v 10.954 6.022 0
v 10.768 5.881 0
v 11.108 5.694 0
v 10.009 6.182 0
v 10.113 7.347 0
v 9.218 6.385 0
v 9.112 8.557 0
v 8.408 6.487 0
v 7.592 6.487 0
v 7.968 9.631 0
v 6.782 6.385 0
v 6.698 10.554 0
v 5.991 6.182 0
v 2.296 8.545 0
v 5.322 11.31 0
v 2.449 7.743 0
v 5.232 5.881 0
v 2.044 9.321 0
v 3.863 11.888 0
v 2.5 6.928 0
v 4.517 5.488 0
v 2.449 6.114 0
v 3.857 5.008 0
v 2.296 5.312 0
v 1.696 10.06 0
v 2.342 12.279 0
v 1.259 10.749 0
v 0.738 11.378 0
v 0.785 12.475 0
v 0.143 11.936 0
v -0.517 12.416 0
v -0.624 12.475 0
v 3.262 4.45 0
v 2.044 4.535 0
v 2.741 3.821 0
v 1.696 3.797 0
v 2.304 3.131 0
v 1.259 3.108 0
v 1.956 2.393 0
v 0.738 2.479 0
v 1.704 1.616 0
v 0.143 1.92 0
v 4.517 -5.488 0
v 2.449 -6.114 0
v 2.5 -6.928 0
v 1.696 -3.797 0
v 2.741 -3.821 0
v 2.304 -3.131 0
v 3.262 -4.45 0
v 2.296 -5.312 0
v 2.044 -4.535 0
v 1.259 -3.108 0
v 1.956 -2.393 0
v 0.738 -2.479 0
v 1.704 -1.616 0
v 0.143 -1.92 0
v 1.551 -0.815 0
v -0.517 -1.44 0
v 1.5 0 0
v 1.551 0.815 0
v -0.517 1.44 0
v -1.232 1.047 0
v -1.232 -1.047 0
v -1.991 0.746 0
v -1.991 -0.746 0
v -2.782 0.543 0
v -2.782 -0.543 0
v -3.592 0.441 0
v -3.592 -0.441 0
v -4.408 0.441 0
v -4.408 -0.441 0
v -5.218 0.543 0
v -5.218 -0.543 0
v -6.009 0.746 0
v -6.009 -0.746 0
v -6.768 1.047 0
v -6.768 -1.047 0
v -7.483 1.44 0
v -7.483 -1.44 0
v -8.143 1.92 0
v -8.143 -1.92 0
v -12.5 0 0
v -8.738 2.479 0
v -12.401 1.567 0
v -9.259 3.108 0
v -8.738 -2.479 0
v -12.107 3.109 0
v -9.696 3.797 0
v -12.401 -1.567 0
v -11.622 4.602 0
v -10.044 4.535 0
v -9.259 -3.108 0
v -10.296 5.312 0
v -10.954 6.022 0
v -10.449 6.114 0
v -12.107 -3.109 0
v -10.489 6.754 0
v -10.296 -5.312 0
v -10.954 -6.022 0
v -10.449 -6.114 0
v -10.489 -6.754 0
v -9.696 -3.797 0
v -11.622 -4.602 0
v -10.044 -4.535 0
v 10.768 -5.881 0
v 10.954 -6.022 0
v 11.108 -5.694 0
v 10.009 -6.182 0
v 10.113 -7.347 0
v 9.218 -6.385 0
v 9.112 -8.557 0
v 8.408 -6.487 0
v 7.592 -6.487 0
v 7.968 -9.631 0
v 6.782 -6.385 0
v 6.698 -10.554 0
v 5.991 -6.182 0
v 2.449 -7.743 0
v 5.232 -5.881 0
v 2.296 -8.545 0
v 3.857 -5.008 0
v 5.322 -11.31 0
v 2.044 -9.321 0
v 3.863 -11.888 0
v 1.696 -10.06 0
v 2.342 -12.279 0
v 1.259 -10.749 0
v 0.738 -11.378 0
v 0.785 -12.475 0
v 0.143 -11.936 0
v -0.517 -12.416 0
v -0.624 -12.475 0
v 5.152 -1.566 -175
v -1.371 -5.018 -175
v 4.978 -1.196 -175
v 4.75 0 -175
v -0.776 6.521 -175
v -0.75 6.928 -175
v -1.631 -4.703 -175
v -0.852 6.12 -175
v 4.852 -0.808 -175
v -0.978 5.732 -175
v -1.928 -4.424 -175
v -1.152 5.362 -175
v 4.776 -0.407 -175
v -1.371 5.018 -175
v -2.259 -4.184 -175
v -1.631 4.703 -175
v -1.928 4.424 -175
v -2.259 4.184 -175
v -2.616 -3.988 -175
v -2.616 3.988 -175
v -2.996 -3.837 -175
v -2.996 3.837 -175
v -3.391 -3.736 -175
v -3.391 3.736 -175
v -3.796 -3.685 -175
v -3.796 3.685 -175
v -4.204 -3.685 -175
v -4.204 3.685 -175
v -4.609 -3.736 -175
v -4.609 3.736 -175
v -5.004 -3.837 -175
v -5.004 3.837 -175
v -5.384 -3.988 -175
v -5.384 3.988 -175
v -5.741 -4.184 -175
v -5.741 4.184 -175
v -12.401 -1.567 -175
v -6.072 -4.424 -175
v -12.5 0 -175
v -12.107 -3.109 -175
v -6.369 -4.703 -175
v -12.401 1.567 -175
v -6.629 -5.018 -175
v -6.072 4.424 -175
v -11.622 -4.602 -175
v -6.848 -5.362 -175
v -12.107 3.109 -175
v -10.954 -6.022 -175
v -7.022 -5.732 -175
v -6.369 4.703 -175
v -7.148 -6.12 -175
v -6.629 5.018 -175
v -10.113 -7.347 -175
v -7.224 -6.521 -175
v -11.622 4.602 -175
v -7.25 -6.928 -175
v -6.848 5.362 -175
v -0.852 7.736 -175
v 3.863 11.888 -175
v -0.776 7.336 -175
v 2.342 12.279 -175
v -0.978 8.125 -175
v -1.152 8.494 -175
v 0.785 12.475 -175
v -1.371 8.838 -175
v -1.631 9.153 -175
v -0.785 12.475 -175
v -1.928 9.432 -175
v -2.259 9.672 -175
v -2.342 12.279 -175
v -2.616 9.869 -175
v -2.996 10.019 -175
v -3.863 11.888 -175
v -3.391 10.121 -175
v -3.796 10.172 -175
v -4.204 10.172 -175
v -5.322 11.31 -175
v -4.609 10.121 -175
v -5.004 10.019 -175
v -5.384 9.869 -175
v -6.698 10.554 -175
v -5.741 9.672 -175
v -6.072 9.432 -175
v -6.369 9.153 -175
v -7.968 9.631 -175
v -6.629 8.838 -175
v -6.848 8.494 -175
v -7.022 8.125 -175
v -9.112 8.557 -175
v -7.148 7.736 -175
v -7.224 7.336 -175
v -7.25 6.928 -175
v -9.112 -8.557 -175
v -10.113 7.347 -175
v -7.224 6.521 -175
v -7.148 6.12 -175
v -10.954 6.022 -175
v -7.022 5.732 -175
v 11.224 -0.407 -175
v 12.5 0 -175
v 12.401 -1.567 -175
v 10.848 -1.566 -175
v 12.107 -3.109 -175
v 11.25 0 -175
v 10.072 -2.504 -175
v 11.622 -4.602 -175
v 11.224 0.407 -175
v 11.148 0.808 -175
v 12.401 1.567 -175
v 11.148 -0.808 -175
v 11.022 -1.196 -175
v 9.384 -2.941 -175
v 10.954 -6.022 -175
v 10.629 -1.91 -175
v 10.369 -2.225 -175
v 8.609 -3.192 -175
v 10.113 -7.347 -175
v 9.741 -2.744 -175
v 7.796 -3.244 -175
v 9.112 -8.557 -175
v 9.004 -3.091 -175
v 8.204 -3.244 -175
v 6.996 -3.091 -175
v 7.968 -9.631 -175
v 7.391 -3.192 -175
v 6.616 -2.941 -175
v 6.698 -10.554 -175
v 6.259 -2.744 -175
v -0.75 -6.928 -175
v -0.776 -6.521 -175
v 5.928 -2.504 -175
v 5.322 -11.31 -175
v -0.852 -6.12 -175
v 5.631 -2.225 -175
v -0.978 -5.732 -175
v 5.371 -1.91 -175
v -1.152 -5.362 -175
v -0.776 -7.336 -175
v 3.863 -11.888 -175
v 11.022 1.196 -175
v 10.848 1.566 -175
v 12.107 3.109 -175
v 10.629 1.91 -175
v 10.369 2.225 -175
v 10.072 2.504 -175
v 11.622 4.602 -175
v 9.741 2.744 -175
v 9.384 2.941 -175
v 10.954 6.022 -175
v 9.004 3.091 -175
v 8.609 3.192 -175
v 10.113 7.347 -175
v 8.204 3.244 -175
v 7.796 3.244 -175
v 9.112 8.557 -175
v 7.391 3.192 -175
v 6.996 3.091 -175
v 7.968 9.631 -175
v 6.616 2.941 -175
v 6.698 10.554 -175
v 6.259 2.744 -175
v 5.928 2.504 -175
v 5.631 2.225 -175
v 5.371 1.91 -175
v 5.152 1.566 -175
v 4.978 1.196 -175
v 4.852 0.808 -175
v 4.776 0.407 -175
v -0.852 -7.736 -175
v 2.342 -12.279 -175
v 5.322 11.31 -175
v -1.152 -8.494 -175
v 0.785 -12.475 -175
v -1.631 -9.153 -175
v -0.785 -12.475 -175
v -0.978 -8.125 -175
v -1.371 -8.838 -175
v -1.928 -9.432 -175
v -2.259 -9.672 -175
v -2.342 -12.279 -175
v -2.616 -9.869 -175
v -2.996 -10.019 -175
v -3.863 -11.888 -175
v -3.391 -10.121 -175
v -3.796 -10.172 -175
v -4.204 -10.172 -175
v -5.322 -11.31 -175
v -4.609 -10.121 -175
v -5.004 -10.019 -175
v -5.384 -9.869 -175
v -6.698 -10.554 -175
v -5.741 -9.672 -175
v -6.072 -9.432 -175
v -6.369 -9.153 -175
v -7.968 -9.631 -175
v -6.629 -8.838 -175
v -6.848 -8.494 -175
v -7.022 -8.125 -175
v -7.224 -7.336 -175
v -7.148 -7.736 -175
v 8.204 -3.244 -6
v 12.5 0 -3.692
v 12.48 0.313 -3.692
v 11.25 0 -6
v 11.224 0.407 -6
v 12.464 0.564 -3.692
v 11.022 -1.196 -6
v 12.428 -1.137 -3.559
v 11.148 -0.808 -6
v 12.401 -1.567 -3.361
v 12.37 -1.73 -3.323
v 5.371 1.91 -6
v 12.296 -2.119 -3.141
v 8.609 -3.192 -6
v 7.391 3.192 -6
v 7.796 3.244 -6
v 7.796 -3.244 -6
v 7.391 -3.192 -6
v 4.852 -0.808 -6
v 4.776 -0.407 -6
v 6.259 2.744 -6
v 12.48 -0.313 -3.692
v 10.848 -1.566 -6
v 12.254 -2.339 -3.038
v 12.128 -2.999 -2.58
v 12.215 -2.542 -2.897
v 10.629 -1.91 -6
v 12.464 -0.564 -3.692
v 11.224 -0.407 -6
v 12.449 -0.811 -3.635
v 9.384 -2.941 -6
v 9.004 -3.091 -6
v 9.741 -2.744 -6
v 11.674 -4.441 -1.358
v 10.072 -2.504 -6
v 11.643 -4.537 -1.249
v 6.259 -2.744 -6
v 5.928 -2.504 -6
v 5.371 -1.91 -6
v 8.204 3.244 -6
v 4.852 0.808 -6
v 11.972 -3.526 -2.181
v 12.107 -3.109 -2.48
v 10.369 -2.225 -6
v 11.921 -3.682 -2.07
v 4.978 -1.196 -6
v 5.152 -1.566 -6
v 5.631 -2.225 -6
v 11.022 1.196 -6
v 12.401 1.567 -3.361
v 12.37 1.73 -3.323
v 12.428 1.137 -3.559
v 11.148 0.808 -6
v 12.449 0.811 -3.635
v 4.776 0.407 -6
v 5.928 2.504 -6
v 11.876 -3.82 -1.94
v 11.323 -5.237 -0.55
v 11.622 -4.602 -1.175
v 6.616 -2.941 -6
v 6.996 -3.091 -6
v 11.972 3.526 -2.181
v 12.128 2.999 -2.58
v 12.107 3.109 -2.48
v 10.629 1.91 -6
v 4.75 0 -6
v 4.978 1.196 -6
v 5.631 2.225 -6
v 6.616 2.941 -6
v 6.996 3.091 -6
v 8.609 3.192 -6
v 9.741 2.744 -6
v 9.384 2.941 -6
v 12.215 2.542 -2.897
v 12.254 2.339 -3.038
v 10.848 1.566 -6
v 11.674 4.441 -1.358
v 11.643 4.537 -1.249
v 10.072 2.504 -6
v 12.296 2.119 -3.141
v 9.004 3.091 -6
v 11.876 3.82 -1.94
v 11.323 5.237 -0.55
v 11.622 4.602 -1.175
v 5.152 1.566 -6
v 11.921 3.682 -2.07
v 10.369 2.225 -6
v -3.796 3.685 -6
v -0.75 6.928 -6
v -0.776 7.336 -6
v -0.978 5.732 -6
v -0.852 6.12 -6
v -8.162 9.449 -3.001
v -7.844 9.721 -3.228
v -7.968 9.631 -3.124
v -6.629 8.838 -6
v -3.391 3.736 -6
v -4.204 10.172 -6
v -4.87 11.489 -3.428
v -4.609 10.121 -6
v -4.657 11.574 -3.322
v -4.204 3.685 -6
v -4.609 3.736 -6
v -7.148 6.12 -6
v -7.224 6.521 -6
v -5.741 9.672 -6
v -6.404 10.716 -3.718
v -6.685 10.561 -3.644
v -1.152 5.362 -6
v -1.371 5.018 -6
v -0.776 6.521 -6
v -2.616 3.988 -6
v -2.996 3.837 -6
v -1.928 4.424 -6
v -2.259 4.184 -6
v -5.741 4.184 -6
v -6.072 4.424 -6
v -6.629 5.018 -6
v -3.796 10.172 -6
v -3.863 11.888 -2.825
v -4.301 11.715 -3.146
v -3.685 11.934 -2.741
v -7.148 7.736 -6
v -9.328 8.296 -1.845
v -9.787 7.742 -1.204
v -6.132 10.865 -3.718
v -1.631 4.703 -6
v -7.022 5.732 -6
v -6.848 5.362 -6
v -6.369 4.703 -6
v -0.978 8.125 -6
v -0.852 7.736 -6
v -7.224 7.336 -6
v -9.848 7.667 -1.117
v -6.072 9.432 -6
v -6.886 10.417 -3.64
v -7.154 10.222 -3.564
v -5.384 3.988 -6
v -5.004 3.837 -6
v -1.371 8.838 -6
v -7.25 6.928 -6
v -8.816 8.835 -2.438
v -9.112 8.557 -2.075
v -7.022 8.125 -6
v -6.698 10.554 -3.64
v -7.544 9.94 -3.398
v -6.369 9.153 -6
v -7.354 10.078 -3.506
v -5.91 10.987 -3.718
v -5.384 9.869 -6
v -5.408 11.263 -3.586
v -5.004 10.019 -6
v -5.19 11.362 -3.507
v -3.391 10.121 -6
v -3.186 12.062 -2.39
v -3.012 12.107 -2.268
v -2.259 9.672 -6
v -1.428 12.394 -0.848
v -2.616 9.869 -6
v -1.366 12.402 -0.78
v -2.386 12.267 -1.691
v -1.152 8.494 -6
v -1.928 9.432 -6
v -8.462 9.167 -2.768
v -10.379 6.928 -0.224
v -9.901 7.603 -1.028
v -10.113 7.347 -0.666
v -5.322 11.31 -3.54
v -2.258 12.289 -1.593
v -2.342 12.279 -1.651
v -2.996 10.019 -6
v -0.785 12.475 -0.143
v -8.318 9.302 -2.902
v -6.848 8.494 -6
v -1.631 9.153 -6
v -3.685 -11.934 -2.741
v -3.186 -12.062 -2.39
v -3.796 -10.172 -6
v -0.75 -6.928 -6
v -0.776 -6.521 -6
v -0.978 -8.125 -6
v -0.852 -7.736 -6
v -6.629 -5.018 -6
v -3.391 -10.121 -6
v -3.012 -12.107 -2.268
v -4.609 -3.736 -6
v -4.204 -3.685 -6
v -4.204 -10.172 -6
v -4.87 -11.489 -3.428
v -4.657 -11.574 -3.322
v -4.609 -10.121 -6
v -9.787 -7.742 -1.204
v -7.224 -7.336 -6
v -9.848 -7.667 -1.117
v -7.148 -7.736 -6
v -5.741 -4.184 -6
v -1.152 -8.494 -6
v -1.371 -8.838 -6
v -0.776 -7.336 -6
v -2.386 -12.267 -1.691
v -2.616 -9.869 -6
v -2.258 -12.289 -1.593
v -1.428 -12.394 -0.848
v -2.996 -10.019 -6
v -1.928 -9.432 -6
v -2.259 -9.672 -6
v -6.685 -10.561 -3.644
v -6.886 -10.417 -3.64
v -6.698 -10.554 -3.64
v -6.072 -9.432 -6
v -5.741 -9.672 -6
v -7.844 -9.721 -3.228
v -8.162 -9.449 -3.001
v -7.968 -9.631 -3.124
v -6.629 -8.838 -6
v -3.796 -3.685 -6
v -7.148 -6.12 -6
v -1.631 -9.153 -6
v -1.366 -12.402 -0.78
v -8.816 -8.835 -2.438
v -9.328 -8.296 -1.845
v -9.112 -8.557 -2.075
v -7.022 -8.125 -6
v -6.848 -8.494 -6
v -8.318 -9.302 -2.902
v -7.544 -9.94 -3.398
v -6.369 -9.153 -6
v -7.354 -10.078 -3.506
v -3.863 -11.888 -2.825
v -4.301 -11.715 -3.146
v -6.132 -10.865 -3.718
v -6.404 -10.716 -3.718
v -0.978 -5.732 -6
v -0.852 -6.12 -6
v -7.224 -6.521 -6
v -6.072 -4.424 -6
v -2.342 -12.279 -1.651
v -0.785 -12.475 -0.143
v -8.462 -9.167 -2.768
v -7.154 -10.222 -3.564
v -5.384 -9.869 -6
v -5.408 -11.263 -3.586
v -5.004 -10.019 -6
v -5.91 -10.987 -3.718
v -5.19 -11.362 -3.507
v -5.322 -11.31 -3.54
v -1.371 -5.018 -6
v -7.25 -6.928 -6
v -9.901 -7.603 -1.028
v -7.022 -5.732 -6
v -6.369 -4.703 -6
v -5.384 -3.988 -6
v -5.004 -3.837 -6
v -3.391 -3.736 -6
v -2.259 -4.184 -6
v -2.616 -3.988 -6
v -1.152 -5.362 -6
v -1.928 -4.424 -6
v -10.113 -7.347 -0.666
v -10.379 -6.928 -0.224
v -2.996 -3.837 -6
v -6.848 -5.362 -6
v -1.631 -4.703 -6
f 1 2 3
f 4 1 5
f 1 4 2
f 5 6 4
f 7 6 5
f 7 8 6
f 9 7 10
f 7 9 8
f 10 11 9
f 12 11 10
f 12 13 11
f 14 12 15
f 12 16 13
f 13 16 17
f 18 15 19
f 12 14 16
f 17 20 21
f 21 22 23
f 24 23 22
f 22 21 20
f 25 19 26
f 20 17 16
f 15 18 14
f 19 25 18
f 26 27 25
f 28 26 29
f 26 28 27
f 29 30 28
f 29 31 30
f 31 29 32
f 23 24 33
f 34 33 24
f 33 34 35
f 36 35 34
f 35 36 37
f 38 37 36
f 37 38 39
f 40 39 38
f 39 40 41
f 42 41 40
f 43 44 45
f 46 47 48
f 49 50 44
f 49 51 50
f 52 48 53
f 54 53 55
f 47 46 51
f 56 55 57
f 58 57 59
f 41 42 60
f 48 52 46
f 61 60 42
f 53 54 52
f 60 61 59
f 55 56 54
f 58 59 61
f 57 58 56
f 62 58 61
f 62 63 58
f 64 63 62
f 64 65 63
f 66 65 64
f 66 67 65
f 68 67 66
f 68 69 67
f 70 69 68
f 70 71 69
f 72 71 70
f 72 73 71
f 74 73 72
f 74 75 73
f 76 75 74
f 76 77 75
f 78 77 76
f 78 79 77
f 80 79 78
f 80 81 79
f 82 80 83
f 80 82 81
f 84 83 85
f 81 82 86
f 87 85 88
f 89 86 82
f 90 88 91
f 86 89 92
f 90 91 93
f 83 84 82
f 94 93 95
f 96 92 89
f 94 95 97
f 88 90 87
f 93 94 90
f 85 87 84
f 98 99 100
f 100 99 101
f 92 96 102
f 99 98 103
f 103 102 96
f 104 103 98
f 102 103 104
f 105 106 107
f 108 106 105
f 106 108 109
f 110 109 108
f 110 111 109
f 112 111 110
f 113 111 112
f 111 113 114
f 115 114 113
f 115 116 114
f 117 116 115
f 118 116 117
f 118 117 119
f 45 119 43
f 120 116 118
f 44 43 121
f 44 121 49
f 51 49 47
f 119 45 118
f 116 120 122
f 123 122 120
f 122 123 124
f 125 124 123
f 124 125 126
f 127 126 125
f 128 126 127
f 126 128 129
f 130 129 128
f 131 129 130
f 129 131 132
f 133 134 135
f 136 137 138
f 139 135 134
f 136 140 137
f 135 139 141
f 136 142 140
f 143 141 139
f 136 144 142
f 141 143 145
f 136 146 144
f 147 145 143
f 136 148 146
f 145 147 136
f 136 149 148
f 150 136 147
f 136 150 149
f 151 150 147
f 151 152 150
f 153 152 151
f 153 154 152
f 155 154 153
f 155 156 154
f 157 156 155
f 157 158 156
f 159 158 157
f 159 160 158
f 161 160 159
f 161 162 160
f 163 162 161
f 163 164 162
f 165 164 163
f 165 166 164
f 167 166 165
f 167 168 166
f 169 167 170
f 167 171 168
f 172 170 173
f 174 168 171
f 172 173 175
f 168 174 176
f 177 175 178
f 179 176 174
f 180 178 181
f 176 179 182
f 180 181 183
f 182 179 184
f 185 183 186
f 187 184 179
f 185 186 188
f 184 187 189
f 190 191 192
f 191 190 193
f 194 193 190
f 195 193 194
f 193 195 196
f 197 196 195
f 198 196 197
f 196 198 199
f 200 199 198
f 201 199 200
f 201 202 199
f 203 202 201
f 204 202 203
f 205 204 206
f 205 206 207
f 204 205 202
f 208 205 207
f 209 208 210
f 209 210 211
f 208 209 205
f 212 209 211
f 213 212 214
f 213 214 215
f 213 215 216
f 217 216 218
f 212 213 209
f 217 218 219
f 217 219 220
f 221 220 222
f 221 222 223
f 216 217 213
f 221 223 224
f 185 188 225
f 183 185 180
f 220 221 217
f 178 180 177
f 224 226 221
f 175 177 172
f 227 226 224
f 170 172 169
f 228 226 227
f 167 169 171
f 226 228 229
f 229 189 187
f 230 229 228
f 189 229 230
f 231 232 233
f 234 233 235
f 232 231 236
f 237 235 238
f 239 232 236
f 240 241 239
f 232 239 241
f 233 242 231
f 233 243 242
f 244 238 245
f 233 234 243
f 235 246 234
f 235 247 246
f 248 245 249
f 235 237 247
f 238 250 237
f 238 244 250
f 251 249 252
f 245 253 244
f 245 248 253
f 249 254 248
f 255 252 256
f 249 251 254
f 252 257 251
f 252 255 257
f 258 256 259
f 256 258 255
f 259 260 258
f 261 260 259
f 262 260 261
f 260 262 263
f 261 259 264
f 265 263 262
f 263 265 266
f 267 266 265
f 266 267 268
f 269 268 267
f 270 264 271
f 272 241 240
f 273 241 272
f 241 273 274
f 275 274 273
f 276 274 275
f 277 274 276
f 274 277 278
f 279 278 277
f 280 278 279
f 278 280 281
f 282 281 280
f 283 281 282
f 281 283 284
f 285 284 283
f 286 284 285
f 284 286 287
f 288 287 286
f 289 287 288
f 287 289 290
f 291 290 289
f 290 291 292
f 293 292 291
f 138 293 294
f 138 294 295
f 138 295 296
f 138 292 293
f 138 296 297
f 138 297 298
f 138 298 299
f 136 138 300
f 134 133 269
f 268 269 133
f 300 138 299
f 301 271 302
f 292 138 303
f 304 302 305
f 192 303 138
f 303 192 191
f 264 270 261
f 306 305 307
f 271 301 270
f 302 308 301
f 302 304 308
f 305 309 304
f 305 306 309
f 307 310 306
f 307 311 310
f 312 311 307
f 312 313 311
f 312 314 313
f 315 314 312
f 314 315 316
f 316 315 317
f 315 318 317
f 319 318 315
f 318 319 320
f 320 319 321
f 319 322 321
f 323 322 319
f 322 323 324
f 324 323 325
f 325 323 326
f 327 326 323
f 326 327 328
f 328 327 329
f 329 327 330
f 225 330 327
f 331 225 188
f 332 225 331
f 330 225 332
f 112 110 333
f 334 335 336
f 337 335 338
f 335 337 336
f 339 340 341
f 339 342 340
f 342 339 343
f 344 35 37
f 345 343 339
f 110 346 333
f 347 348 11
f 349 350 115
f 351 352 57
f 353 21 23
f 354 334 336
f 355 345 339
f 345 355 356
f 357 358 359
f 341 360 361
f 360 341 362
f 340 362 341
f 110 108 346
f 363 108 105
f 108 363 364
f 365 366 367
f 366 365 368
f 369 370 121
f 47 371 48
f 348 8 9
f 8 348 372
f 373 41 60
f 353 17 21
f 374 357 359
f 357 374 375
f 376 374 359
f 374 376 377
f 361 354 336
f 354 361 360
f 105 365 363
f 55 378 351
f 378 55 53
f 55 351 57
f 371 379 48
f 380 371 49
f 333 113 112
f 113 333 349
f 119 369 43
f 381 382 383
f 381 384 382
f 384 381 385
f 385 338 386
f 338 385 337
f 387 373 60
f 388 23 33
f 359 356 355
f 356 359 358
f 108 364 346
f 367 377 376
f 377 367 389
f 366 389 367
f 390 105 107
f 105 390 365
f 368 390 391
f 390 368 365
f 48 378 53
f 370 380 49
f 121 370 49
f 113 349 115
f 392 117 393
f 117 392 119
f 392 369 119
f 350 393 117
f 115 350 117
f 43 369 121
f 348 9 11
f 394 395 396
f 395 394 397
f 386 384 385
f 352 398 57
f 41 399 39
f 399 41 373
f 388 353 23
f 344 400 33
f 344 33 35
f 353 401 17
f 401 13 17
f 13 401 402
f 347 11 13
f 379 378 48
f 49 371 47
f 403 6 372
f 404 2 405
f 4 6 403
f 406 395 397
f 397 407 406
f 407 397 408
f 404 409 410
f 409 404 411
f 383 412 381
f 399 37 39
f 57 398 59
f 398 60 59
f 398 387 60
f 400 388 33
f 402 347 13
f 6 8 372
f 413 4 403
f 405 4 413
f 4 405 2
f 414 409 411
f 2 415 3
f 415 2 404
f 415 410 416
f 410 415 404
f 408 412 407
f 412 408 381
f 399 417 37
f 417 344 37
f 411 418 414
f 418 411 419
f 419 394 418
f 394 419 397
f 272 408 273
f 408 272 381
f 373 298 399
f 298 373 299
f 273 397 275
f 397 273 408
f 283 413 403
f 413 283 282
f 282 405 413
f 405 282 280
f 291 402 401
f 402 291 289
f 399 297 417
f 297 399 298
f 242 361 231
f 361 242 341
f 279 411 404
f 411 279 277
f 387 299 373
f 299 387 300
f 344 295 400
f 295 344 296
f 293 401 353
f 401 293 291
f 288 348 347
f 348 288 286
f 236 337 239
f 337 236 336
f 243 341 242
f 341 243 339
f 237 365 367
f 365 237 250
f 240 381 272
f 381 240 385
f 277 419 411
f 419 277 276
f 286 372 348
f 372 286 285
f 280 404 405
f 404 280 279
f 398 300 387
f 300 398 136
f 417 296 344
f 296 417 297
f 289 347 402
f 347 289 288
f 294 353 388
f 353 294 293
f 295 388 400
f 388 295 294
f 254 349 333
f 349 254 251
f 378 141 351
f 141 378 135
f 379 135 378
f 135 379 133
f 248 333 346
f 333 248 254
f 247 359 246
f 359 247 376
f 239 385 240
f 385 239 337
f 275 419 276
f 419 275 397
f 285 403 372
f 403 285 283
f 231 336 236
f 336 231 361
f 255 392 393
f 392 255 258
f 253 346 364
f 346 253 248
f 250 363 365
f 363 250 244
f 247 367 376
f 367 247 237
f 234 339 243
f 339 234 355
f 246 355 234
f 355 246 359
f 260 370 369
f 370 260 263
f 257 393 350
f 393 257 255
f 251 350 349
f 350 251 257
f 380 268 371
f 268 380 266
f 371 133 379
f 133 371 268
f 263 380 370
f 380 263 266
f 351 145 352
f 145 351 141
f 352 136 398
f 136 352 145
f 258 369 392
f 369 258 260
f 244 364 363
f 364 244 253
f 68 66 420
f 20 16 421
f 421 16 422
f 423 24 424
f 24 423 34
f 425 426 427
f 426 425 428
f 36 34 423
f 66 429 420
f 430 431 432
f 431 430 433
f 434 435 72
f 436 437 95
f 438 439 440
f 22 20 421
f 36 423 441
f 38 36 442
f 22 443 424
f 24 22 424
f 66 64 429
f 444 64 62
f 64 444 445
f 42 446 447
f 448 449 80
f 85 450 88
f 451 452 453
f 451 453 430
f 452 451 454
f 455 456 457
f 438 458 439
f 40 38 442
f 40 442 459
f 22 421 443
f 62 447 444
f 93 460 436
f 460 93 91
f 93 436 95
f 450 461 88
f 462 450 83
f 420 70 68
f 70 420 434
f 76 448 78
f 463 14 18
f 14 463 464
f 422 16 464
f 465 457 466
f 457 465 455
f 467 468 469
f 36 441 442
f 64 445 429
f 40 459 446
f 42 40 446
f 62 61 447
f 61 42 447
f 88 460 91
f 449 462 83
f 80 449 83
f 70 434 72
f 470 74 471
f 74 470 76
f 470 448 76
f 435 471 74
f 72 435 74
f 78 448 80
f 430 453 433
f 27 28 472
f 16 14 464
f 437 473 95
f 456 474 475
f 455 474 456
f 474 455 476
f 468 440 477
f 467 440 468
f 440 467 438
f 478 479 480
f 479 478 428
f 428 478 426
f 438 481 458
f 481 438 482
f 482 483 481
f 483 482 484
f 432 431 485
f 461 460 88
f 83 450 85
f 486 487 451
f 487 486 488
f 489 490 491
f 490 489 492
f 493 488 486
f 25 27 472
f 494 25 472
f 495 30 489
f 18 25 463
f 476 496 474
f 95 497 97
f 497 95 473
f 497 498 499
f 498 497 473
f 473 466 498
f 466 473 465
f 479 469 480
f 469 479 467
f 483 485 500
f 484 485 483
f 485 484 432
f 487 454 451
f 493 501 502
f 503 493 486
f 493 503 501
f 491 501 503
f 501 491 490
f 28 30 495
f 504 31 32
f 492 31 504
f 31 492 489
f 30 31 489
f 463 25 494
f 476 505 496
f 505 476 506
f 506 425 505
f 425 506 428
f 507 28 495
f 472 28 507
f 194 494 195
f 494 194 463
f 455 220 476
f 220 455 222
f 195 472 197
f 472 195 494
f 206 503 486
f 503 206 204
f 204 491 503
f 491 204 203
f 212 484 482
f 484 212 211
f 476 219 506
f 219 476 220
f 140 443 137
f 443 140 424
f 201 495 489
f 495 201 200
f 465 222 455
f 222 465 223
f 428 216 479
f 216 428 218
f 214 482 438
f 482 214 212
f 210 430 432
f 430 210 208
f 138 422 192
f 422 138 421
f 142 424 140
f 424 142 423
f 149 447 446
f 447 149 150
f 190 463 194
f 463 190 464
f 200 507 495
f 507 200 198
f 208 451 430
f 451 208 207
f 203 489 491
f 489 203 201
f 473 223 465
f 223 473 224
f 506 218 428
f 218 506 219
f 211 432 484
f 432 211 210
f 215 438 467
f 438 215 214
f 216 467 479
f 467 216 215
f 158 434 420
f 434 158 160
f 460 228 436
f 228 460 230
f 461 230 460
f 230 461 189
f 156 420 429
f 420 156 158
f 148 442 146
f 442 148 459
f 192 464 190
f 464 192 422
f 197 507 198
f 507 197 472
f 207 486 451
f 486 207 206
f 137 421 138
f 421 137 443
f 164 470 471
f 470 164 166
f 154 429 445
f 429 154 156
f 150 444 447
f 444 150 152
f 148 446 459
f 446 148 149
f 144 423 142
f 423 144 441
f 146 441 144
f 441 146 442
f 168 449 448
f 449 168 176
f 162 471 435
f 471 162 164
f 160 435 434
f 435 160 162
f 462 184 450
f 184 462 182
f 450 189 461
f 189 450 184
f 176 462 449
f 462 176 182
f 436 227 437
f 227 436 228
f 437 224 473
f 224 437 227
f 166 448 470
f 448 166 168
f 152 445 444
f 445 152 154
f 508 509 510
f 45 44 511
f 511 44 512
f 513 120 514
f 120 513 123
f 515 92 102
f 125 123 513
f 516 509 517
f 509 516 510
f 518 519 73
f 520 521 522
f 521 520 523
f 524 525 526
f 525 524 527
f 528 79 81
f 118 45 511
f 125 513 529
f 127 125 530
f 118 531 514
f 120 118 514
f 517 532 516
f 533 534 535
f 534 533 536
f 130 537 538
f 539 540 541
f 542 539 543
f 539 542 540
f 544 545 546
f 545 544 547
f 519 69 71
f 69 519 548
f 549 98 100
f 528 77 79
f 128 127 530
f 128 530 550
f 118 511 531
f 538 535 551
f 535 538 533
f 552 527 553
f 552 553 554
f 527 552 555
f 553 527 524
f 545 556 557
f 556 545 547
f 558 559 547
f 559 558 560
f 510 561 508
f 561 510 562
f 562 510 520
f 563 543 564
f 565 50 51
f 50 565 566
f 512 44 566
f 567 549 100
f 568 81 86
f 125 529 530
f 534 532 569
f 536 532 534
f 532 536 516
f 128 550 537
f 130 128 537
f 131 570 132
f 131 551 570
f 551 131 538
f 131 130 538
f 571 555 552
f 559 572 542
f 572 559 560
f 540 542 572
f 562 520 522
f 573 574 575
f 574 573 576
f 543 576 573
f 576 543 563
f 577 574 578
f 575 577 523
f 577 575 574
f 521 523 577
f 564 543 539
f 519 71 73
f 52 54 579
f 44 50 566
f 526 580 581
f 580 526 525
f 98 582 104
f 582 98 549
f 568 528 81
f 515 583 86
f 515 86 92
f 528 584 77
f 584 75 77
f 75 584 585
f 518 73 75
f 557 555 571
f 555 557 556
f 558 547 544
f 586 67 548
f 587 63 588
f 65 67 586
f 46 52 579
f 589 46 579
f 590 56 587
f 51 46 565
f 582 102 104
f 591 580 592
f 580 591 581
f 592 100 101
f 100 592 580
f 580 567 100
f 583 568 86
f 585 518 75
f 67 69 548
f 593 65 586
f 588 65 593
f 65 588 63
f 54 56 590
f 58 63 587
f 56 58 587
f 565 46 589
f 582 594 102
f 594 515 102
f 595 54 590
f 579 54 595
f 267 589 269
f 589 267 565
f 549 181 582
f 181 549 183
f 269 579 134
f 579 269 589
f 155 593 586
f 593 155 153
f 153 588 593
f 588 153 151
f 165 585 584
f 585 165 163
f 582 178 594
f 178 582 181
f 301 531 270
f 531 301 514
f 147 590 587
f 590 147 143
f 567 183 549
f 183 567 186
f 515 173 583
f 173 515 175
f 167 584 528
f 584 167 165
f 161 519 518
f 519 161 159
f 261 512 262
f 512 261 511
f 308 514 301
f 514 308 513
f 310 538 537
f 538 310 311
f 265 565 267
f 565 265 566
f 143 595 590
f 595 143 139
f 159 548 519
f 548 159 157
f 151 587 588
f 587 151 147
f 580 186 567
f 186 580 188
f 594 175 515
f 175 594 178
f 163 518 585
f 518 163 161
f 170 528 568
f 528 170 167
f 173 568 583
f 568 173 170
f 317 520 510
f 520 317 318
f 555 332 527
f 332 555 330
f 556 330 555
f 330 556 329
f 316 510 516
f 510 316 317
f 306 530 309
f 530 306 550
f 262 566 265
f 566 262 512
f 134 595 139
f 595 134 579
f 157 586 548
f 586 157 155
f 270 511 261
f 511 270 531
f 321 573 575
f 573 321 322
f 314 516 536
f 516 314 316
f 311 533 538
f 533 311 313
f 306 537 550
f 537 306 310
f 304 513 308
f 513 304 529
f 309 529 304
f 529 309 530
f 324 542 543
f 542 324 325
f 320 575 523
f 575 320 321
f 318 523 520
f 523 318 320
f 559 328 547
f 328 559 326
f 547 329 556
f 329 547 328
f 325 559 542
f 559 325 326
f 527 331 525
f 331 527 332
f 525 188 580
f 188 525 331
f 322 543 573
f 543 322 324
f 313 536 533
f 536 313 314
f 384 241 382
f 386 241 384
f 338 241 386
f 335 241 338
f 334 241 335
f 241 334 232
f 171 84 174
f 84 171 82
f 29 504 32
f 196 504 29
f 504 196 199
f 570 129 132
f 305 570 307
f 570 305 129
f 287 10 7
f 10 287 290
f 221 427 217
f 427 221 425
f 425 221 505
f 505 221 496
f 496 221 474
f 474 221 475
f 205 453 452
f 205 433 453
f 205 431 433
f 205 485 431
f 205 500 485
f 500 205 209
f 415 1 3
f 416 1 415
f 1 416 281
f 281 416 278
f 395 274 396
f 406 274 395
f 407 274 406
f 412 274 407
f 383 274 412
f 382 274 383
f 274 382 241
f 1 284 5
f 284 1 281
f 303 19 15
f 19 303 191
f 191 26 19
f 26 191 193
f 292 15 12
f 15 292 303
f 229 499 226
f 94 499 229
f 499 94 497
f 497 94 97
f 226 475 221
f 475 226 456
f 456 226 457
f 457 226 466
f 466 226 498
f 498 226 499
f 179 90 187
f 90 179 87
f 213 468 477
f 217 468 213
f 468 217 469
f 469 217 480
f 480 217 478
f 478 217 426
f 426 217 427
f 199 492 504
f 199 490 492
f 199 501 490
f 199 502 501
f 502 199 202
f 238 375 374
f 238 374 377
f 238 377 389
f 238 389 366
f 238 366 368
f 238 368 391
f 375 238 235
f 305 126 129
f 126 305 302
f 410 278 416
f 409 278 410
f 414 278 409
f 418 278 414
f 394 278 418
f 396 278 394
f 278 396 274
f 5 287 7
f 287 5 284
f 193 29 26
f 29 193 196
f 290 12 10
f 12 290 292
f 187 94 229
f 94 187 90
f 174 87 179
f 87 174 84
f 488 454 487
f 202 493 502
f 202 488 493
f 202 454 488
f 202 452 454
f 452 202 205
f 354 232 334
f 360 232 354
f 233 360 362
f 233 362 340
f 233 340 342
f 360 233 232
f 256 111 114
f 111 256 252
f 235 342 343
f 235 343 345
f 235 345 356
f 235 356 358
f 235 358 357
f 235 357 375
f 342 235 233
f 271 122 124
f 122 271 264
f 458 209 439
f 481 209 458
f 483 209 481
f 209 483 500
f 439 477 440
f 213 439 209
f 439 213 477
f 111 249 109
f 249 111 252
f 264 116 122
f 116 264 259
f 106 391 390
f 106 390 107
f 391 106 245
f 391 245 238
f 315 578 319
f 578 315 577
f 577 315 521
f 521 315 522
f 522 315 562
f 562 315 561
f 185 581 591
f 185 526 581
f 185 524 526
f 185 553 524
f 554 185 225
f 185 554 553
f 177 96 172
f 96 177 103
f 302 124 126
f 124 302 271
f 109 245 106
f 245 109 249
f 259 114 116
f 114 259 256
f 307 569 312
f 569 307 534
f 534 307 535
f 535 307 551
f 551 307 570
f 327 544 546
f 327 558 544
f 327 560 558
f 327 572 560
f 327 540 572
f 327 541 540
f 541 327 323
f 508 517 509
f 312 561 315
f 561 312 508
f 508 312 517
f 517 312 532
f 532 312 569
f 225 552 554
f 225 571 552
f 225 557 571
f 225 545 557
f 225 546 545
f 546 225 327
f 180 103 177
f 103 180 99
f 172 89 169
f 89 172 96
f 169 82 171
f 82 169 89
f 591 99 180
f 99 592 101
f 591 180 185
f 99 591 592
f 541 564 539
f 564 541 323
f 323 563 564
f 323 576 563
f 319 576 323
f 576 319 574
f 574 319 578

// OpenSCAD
$fn = 50;


difference() {
	union() {
		translate(v = [0, 0, -175.0000000000]) {
			cylinder(h = 175, r = 12.5000000000);
		}
	}
	union() {
		translate(v = [8.0000000000, 0.0000000000, 0]) {
			rotate(a = [0, 0, 0]) {
				difference() {
					union() {
						#translate(v = [0, 0, -175.0000000000]) {
							cylinder(h = 175, r = 2.2500000000);
						}
						#translate(v = [0, 0, -6]) {
							cylinder(h = 6, r = 12.5000000000, r1 = 3.2500000000, r2 = 6.5000000000);
						}
						#translate(v = [0, 0, -175.0000000000]) {
							cylinder(h = 175, r = 3.2500000000);
						}
						#translate(v = [0, 0, -175.0000000000]) {
							cylinder(h = 175, r = 2.2500000000);
						}
					}
					union();
				}
			}
		}
		translate(v = [-4.0000000000, 6.9282032303, 0]) {
			rotate(a = [0, 0, 0]) {
				difference() {
					union() {
						#translate(v = [0, 0, -175.0000000000]) {
							cylinder(h = 175, r = 2.2500000000);
						}
						#translate(v = [0, 0, -6]) {
							cylinder(h = 6, r = 12.5000000000, r1 = 3.2500000000, r2 = 6.5000000000);
						}
						#translate(v = [0, 0, -175.0000000000]) {
							cylinder(h = 175, r = 3.2500000000);
						}
						#translate(v = [0, 0, -175.0000000000]) {
							cylinder(h = 175, r = 2.2500000000);
						}
					}
					union();
				}
			}
		}
		translate(v = [-4.0000000000, -6.9282032303, 0]) {
			rotate(a = [0, 0, 0]) {
				difference() {
					union() {
						#translate(v = [0, 0, -175.0000000000]) {
							cylinder(h = 175, r = 2.2500000000);
						}
						#translate(v = [0, 0, -6]) {
							cylinder(h = 6, r = 12.5000000000, r1 = 3.2500000000, r2 = 6.5000000000);
						}
						#translate(v = [0, 0, -175.0000000000]) {
							cylinder(h = 175, r = 3.2500000000);
						}
						#translate(v = [0, 0, -175.0000000000]) {
							cylinder(h = 175, r = 2.2500000000);
						}
					}
					union();
				}
			}
		}
	}
}
